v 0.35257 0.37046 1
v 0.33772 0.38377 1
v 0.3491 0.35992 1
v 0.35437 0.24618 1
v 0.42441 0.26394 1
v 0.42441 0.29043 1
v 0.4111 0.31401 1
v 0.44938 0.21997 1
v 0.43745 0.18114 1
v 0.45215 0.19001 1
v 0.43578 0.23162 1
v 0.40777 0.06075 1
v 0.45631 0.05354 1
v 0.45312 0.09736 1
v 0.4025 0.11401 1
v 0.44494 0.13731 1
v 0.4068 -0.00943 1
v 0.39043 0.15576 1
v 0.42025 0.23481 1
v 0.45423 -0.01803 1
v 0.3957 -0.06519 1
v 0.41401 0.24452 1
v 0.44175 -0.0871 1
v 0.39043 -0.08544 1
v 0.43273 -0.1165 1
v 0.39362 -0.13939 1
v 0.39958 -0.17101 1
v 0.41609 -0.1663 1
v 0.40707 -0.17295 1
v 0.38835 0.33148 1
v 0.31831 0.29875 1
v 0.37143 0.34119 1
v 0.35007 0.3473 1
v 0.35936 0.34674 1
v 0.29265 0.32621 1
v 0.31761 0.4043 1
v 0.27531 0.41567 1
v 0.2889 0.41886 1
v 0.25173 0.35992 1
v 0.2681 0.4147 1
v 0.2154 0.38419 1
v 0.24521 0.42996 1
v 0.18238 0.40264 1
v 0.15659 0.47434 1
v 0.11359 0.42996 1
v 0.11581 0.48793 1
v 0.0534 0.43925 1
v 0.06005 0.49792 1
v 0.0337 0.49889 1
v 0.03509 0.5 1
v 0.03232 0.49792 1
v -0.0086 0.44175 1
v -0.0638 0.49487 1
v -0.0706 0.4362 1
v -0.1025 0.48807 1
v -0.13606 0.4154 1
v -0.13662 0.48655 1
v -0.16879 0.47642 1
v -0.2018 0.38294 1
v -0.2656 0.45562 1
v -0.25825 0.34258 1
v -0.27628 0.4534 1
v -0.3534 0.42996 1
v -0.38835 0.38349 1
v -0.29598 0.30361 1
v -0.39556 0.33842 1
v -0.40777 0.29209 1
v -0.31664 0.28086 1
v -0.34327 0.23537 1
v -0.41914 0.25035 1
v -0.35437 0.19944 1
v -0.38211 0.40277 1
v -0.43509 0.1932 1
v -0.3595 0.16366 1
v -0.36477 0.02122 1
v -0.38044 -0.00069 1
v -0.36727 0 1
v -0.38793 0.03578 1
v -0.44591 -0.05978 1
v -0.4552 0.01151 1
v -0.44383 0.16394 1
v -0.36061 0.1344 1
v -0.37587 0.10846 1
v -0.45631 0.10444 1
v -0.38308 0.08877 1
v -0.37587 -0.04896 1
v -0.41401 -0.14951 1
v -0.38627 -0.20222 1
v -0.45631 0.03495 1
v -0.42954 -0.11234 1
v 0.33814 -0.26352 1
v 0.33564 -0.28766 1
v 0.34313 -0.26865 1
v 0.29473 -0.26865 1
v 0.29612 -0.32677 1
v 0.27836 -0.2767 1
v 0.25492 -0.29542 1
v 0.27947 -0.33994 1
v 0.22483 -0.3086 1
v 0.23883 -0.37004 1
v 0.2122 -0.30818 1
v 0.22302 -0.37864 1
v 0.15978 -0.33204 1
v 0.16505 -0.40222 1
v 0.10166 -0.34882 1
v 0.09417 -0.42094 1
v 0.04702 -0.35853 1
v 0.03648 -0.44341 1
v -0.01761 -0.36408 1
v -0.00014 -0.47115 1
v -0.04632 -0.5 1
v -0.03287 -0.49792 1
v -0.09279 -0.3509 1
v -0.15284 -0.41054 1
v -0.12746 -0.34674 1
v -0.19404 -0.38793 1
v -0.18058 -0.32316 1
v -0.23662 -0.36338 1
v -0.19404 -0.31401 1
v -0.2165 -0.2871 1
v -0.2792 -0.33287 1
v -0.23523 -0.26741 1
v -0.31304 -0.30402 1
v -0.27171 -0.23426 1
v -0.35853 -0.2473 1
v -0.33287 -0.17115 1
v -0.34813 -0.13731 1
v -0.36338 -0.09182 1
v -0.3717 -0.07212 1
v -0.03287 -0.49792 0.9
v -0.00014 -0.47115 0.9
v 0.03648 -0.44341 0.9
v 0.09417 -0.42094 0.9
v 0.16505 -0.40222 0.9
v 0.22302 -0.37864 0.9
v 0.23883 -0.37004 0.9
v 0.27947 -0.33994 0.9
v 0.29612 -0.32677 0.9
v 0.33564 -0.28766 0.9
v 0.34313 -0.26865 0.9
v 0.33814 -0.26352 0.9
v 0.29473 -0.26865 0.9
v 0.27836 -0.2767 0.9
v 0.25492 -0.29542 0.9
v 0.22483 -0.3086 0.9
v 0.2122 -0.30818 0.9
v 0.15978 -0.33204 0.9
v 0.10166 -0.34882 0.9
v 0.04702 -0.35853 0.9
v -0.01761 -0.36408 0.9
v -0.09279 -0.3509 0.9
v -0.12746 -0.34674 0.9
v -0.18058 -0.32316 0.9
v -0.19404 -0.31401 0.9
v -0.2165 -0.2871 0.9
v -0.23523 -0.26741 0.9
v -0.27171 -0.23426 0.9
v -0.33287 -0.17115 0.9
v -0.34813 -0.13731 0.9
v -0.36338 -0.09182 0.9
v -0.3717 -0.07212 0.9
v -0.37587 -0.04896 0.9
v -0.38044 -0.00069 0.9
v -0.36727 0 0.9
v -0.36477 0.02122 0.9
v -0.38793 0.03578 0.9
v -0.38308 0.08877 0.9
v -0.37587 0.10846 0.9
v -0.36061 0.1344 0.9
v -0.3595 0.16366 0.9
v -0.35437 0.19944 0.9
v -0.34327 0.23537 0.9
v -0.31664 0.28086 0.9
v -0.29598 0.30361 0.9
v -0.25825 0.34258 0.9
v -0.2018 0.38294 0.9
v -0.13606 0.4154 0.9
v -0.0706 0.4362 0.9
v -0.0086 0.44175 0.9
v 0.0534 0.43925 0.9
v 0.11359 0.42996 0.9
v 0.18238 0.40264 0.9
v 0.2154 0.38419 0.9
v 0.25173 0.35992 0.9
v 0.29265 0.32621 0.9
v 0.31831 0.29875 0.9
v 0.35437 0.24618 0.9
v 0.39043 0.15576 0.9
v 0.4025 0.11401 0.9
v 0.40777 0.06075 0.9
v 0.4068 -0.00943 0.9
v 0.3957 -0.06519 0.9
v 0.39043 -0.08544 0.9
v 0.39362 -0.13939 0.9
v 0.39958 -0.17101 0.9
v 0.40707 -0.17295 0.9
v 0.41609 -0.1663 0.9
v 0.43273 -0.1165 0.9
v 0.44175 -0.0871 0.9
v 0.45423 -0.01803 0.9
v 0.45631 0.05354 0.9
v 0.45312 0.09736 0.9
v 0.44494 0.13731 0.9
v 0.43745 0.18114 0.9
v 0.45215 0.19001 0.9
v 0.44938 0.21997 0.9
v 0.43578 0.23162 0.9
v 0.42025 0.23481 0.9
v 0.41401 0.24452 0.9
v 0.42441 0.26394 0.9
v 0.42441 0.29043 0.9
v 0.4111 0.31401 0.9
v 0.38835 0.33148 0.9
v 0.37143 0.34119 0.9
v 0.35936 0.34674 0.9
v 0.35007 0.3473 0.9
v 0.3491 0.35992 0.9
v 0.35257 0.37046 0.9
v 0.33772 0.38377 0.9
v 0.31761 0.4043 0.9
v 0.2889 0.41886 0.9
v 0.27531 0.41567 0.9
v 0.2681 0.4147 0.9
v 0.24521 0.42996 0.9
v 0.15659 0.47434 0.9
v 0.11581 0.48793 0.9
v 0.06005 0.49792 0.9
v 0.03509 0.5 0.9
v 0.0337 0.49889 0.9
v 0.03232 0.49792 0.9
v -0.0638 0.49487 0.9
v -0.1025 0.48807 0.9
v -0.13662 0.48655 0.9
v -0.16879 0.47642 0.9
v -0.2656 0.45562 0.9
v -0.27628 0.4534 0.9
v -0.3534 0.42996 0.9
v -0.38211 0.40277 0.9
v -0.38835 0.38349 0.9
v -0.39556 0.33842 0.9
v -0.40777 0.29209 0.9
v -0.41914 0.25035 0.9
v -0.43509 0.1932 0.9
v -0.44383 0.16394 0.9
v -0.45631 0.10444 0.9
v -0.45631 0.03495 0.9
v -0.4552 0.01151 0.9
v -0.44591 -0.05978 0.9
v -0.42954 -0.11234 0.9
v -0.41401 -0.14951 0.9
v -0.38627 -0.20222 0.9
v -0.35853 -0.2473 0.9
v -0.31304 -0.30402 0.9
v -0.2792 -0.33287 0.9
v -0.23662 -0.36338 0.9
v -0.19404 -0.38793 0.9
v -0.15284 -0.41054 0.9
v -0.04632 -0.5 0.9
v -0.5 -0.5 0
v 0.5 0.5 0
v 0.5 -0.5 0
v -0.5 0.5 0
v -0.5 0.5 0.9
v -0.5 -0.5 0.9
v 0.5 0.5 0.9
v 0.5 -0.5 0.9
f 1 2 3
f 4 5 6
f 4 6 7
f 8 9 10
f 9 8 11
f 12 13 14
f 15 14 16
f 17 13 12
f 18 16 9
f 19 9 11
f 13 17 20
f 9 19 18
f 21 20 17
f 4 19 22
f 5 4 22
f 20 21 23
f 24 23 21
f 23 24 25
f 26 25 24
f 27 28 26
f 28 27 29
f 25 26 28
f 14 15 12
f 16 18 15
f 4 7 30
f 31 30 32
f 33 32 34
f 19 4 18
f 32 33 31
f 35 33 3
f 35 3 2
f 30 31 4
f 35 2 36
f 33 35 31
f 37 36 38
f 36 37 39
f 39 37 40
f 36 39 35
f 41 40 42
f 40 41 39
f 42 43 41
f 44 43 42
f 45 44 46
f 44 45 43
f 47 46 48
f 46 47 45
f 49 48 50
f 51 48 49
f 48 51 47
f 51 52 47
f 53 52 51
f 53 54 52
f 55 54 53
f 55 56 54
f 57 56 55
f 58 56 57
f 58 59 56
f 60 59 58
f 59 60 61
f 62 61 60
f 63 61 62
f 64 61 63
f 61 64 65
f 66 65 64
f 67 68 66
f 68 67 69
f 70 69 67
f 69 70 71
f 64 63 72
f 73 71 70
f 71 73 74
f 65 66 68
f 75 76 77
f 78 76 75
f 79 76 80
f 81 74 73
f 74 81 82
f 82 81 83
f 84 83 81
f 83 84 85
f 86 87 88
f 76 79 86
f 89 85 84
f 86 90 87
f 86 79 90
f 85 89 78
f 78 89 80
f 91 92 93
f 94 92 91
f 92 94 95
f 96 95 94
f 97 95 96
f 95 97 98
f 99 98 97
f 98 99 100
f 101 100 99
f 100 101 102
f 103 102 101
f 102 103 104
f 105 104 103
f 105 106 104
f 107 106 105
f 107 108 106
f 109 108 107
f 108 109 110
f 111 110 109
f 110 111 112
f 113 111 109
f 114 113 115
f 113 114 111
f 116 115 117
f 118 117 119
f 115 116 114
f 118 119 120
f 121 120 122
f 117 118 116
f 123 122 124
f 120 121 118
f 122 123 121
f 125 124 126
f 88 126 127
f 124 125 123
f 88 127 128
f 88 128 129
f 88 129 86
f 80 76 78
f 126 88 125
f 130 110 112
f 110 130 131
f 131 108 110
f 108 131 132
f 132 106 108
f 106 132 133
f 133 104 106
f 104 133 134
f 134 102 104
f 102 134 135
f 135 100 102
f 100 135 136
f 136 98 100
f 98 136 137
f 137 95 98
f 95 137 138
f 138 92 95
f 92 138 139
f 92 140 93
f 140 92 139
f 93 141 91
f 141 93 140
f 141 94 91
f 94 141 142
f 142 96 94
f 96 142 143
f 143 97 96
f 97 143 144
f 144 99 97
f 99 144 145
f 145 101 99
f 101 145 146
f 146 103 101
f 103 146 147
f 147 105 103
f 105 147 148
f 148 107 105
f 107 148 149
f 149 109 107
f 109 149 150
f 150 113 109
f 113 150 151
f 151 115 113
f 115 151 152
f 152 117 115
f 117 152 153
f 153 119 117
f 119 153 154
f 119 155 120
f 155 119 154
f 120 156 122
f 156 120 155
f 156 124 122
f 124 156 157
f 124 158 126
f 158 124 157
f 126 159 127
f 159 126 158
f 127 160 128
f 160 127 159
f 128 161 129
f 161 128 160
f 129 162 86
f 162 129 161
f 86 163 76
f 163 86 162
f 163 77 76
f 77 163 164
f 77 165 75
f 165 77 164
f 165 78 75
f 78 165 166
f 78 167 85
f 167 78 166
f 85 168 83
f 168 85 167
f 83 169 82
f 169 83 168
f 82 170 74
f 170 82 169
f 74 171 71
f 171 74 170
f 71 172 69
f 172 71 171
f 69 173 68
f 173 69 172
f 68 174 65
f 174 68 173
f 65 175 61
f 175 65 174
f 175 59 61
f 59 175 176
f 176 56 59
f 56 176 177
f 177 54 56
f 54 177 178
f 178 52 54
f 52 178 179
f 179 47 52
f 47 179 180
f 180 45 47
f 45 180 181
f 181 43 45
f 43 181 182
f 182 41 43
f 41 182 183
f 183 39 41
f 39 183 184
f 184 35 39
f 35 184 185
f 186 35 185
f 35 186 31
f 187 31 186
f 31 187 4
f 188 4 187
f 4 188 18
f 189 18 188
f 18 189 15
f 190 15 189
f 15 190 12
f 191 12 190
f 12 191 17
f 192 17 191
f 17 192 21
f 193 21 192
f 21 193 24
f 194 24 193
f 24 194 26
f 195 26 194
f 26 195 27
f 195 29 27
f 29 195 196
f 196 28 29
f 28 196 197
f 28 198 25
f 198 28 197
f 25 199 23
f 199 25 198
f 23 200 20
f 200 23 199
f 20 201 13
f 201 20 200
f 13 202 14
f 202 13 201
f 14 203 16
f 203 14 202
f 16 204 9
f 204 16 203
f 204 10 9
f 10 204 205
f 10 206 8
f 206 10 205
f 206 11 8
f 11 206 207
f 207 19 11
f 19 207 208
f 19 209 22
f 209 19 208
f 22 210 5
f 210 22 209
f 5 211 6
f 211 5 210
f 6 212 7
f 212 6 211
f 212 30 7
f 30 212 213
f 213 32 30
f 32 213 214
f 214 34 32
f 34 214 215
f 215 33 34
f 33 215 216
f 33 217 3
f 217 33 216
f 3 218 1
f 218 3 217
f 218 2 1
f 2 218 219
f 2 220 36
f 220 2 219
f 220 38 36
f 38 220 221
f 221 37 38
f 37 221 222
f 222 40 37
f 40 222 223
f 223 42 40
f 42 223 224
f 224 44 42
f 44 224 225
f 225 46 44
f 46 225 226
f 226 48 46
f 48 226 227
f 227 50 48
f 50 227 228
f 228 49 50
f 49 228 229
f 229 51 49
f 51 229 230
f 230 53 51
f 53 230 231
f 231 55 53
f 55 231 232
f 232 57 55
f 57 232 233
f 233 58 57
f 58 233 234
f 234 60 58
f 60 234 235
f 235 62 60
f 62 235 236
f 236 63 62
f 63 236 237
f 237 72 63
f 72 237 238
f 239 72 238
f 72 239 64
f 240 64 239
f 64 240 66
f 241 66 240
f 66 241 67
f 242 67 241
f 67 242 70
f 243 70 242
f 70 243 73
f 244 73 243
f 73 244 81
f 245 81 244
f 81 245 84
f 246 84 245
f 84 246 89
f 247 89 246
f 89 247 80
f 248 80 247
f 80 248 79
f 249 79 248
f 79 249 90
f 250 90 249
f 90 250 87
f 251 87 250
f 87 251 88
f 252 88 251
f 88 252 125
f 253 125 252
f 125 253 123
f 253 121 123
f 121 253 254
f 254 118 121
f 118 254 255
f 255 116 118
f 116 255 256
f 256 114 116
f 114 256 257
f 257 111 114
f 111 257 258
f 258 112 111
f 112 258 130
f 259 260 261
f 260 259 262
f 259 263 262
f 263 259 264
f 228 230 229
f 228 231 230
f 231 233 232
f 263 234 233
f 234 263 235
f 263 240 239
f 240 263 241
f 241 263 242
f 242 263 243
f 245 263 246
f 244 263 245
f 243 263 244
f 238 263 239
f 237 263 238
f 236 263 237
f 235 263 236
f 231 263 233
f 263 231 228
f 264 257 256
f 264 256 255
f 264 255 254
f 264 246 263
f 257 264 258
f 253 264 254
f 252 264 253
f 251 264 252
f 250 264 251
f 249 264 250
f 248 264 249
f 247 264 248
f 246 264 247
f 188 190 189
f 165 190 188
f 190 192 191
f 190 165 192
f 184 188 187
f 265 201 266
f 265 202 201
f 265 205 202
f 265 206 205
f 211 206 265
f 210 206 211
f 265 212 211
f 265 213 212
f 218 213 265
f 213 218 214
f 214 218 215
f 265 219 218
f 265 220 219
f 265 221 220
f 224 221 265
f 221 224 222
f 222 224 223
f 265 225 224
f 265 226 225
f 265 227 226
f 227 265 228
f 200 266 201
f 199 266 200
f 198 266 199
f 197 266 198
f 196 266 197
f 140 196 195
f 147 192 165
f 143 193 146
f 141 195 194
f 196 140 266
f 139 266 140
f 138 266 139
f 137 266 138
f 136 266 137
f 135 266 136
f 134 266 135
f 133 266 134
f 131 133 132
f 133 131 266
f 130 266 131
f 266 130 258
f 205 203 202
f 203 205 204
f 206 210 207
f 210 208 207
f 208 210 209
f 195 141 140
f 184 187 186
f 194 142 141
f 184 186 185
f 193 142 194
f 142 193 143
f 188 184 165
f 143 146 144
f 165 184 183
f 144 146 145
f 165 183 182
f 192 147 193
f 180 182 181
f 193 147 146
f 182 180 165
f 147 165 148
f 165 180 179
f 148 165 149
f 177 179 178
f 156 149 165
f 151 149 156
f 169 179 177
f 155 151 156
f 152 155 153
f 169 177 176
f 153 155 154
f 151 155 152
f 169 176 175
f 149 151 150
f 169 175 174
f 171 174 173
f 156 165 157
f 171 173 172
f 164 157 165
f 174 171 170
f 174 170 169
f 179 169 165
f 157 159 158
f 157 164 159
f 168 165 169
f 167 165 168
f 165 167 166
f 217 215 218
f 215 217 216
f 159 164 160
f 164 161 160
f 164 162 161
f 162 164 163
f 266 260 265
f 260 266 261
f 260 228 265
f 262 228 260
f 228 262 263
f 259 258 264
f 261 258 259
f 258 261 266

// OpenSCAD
module stain2_1()
{
 /* Generated by trace2scad version 20150415
    http://aggregate.org/MAKE/TRACE2SCAD/
    Optimized model has 129/2133 original points
 */
 color([0.5, 0.5, 0.5])
 assign(minx=5185) /* polygon minx=5185 */
 assign(miny=3045) /* polygon miny=3045 */
 assign(maxx=11795) /* polygon maxx=11795 */
 assign(maxy=10255) /* polygon maxy=10255 */
 assign(dx=maxx-minx)
 assign(dy=maxy-miny)
 assign(maxd=((dx>dy)?dx:dy))
 scale([1/maxd, 1/maxd, 1])
 translate([-minx-dx/2, -miny-dy/2, 0])
 linear_extrude(height=1, convexity=129)
 union() {
  polygon([[8733,10247],[8723,10240],[8030,10218],[7751,10169],[7505,10158],[7273,10085],[6575,9935],[6498,9919],[5942,9750],[5735,9554],[5690,9415],[5638,9090],[5550,8756],[5468,8455],[5353,8043],[5290,7832],[5200,7403],[5200,6902],[5208,6733],[5275,6219],[5393,5840],[5505,5572],[5705,5192],[5905,4867],[6233,4458],[6477,4250],[6784,4030],[7091,3853],[7388,3690],[8156,3045],[8253,3060],[8489,3253],[8753,3453],[9169,3615],[9680,3750],[10098,3920],[10212,3982],[10505,4199],[10625,4294],[10910,4576],[10964,4713],[10928,4750],[10615,4713],[10497,4655],[10328,4520],[10111,4425],[10020,4428],[9642,4256],[9223,4135],[8829,4065],[8363,4025],[7821,4120],[7571,4150],[7188,4320],[7091,4386],[6929,4580],[6794,4722],[6531,4961],[6090,5416],[5980,5660],[5870,5988],[5810,6130],[5780,6297],[5747,6645],[5842,6650],[5860,6803],[5693,6908],[5728,7290],[5780,7432],[5890,7619],[5898,7830],[5935,8088],[6015,8347],[6207,8675],[6356,8839],[6628,9120],[7035,9411],[7509,9645],[7981,9795],[8428,9835],[8875,9817],[9309,9750],[9805,9553],[10043,9420],[10305,9245],[10600,9002],[10785,8804],[11045,8425],[11305,7773],[11392,7472],[11430,7088],[11423,6582],[11343,6180],[11305,6034],[11328,5645],[11371,5417],[11425,5403],[11490,5451],[11610,5810],[11675,6022],[11765,6520],[11780,7036],[11757,7352],[11698,7640],[11644,7956],[11750,8020],[11730,8236],[11632,8320],[11520,8343],[11475,8413],[11550,8553],[11550,8744],[11454,8914],[11290,9040],[11168,9110],[11081,9150],[11014,9154],[11007,9245],[11032,9321],[10925,9417],[10780,9565],[10573,9670],[10475,9647],[10423,9640],[10258,9750],[9619,10070],[9325,10168],[8923,10240],[8743,10255]], convexity=26);
 }
}

module stain2()
{
 /* all layers combined, scaled to within a 1mm cube */
 scale([1, 1, 1/1])
 difference() {
  union() {
   scale([1,1,2]) translate([0,0,-0.5]) stain2_1();
  }
  translate([0,0,-2]) cube([2,2,4],center=true);
 }
}

module final () {
   union() {
     stain2();
     translate([0,0,.45]) color([.45,.45,.45]) cube([1,1,.9], center=true);
   }
}

final();
